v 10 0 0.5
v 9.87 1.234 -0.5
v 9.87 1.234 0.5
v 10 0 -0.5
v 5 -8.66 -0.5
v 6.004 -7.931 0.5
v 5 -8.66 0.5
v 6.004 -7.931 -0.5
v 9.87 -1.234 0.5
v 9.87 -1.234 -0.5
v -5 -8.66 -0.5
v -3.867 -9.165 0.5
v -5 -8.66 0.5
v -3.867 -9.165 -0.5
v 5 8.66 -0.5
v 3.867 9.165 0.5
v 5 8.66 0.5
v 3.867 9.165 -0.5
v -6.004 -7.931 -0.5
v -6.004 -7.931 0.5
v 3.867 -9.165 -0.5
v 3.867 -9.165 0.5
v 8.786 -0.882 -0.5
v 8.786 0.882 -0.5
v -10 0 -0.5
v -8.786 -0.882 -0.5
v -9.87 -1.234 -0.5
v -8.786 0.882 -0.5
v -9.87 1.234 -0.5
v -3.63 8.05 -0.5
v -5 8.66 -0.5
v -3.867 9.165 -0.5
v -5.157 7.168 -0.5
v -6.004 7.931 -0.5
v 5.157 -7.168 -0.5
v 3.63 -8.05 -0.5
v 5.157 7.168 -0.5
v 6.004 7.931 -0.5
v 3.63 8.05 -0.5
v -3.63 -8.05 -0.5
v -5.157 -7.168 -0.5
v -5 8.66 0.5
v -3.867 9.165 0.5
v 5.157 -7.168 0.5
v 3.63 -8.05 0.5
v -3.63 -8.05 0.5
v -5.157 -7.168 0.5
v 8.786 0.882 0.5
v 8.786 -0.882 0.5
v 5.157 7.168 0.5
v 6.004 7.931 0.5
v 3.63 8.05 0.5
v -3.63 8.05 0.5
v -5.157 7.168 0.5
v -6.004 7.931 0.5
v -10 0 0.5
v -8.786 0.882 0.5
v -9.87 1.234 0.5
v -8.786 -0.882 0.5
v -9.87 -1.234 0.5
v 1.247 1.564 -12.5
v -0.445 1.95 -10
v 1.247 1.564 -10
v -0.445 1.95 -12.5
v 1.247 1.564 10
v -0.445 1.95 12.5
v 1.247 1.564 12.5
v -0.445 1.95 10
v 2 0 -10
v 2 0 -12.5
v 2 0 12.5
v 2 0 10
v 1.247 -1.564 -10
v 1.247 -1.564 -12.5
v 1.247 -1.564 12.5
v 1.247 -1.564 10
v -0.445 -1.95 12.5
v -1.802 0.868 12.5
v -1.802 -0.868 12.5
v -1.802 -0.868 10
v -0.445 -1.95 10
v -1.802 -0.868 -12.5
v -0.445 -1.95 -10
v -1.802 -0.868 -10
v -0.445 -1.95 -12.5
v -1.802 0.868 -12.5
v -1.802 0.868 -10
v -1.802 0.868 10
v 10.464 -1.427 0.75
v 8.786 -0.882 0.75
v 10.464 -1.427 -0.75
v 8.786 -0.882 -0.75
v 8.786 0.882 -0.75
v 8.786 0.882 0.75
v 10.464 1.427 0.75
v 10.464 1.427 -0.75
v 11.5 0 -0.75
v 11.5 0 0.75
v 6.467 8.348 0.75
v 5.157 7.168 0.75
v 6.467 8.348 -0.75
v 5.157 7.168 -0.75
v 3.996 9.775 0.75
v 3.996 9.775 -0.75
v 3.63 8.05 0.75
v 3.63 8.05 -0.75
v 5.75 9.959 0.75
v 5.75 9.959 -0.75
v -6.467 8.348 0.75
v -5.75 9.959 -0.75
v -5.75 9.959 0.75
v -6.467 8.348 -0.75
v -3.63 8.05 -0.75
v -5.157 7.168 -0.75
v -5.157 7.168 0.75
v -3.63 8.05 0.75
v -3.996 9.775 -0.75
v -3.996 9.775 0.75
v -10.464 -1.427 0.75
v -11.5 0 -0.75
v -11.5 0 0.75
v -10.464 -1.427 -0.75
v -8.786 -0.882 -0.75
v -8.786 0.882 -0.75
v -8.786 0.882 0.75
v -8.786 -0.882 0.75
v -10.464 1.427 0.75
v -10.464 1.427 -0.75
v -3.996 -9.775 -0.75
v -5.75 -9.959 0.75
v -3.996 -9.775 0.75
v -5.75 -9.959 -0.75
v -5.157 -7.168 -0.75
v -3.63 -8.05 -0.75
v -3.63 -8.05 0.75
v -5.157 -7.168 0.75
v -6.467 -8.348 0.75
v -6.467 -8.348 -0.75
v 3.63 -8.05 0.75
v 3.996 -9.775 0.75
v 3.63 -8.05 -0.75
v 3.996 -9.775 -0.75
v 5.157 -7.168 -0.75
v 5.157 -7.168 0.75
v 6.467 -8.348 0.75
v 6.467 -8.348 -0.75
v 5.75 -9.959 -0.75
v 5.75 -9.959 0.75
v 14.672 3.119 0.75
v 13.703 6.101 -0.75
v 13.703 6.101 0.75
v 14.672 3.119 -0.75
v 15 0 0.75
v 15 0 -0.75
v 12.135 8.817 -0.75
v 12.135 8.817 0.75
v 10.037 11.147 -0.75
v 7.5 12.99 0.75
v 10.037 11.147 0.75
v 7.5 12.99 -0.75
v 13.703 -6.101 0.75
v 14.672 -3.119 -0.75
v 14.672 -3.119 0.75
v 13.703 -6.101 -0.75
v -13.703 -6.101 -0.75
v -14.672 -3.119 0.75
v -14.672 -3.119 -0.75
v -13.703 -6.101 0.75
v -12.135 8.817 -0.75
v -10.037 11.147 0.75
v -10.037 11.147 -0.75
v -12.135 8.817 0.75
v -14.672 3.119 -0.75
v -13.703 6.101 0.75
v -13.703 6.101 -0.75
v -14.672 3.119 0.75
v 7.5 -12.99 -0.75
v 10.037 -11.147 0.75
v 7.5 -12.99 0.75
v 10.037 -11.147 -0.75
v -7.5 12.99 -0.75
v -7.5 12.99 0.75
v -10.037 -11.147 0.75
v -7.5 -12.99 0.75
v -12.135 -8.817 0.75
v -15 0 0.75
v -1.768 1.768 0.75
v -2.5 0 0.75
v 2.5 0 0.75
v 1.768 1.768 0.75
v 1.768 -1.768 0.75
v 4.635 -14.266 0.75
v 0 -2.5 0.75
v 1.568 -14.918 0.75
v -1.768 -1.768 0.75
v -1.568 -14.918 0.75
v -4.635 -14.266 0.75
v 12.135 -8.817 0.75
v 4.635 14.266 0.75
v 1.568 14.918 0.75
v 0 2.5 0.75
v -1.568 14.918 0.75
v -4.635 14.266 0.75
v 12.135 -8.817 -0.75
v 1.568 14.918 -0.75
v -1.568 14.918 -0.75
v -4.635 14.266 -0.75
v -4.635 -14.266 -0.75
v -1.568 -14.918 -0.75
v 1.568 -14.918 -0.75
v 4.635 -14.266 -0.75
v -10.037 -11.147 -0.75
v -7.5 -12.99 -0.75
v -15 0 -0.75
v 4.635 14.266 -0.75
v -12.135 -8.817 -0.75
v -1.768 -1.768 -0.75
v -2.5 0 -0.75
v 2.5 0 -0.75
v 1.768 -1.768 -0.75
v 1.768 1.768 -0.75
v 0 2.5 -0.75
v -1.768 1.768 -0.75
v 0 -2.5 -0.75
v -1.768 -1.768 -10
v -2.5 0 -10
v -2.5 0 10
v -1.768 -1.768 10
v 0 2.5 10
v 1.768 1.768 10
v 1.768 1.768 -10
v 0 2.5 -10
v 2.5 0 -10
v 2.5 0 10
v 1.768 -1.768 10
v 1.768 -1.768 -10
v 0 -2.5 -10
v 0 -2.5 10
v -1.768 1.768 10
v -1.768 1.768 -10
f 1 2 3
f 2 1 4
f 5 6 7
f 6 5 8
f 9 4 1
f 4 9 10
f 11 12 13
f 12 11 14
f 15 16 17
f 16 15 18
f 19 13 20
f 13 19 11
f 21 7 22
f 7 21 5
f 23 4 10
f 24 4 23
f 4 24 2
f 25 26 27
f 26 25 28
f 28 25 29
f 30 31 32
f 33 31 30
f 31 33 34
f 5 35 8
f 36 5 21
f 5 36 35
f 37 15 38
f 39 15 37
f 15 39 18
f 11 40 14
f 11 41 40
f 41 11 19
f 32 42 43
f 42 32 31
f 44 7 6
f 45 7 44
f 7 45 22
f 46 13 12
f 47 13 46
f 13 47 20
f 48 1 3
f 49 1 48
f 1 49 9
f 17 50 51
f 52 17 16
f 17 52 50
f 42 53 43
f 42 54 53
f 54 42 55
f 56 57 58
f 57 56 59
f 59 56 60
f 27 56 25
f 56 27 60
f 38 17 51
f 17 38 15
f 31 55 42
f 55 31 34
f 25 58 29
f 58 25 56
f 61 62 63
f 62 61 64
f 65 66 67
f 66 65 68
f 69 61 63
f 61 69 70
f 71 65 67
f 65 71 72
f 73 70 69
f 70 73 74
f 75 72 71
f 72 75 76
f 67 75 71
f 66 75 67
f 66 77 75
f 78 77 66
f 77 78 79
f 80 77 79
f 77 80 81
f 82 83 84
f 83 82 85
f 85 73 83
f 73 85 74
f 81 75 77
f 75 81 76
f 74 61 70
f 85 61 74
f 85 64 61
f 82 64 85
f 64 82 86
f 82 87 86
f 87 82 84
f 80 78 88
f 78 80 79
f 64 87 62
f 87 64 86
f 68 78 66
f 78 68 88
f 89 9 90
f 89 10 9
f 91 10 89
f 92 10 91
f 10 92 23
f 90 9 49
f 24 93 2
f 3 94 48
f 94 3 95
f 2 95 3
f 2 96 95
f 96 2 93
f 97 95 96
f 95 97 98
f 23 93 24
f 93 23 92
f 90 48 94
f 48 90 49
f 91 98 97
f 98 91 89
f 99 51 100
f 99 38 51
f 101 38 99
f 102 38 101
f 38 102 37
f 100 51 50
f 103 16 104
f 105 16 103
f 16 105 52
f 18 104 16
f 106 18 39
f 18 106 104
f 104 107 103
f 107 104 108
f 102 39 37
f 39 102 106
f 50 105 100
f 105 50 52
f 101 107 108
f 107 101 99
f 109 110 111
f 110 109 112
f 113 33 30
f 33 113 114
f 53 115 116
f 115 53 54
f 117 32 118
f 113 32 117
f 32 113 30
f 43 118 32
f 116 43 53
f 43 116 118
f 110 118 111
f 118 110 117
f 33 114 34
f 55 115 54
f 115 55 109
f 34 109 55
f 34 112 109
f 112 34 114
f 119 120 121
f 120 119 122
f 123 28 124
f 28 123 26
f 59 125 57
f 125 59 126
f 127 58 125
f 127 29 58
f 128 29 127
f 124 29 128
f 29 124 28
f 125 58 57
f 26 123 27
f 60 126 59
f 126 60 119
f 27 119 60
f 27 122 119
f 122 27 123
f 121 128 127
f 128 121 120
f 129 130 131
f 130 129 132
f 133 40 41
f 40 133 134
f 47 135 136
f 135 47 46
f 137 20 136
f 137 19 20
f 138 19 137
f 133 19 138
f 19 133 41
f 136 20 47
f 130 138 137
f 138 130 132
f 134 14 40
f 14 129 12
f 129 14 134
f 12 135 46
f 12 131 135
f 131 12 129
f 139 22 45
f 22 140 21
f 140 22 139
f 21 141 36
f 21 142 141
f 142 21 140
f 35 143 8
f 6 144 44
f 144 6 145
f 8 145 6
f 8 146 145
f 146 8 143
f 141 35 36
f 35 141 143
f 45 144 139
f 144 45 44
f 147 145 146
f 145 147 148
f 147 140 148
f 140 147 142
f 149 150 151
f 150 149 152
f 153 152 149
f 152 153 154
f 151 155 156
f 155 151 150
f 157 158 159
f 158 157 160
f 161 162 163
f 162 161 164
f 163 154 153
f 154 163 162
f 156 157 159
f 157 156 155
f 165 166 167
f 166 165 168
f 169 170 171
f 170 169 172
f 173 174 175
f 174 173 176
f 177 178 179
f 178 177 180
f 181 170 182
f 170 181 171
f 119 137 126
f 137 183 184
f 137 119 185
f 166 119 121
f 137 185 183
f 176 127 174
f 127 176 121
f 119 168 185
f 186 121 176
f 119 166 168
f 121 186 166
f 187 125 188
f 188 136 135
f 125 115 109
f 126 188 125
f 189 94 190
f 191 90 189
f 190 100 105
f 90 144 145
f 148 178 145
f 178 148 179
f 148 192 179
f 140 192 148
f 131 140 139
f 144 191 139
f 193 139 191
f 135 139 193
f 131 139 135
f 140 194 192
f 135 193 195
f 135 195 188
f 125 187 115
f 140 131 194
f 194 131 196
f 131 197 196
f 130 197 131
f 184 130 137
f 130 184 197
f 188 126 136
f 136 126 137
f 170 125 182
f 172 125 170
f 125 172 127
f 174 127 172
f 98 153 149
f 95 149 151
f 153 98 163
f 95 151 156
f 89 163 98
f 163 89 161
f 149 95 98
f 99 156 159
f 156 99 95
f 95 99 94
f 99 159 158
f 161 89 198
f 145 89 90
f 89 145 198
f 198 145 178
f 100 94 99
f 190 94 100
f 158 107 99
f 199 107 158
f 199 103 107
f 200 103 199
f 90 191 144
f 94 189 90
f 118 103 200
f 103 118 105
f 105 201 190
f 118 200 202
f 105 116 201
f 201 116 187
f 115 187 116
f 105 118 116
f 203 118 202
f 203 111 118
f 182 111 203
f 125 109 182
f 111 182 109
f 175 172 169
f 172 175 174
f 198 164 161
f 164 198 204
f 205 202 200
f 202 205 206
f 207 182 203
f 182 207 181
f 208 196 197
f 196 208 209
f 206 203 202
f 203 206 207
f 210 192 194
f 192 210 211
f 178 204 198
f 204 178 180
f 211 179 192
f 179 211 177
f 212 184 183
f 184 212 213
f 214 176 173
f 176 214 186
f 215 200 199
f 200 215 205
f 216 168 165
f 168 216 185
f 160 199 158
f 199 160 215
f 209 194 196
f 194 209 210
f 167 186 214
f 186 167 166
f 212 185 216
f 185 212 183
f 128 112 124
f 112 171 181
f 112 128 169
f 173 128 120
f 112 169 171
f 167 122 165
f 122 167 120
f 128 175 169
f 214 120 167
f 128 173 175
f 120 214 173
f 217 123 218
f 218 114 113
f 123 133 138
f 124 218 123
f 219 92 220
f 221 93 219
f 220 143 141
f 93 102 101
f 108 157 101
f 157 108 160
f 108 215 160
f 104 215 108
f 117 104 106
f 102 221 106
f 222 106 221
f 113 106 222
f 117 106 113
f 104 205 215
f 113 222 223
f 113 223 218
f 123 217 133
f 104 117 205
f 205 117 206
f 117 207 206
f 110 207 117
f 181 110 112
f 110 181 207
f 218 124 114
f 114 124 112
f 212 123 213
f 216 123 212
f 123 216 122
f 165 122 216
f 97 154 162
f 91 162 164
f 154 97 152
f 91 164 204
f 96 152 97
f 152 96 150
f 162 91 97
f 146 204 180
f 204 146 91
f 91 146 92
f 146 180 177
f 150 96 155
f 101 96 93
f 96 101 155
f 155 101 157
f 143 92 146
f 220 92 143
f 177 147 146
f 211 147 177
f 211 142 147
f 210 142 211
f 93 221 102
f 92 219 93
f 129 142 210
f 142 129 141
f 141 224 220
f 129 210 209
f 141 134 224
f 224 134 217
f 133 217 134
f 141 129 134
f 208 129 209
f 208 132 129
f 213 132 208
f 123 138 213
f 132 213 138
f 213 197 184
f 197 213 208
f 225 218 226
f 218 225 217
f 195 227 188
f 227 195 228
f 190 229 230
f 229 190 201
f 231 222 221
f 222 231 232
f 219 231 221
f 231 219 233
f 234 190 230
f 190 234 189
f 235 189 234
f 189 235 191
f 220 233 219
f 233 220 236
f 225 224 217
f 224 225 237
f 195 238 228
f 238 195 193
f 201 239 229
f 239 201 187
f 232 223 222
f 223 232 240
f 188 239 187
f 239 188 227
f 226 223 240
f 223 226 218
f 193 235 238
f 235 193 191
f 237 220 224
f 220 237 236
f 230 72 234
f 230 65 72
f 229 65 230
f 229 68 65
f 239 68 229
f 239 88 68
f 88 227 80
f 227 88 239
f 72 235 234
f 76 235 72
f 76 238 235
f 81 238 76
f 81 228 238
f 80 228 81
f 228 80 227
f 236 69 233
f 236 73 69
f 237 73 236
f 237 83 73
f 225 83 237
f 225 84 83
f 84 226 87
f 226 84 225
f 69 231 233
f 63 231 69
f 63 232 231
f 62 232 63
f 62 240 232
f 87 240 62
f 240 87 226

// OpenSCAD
// Spacer Ring Parameters
module spacer_ring(outer_diameter=20, inner_diameter=15, thickness=1) { // Reduced thickness to match the original model
    difference() {
        // Outer cylinder
        cylinder(h=thickness, r=outer_diameter/2, center=true);
        // Inner cylinder (hole)
        cylinder(h=thickness + 1, r=inner_diameter/2, center=true);
    }
}

// Render the spacer ring
spacer_ring();

// Bolt Parameters
module bolt(length=12, diameter=3) { // Increased length to match the original model
    cylinder(h=length, r=diameter/2, center=true);
}

// Render the bolt
bolt();

// Central Shaft Parameters
module central_shaft(length=20, diameter=5) { // Reduced diameter to match the original model
    cylinder(h=length, r=diameter/2, center=true);
}

// Render the central shaft
central_shaft();

// Input Shaft Parameters
module input_shaft(length=15, base_diameter=4, taper_diameter=2) { // Increased taper to match the original model
    difference() {
        cylinder(h=length, r=base_diameter/2, center=true);
        translate([0, 0, length - 5]) // Taper starts 5 units from the end
            cylinder(h=5, r=taper_diameter/2, center=true);
    }
}

// Render the input shaft
input_shaft();

// Output Shaft Parameters
module output_shaft(length=25, base_diameter=4, taper_diameter=2) { // Increased length and taper to match the original model
    difference() {
        cylinder(h=length, r=base_diameter/2, center=true);
        translate([0, 0, length - 7]) // Taper starts 7 units from the end
            cylinder(h=7, r=taper_diameter/2, center=true);
    }
}

// Render the output shaft
output_shaft();

// Flange Plate Parameters
module flange_plate(diameter=30, thickness=1.5, bolt_holes=6) { // Reduced thickness and increased bolt holes to match the original model
    difference() {
        // Outer cylinder
        cylinder(h=thickness, r=diameter/2, center=true);
        // Bolt holes
        for (i = [0:bolt_holes-1]) {
            rotate([0, 0, i * 360/bolt_holes])
                translate([diameter/2 - 5, 0, 0])
                    cylinder(h=thickness + 1, r=1.5, center=true);
        }
    }
}

// Render the flange plate
flange_plate();

// Nut Parameters
module nut(size=3, thickness=2) { // Reduced hexagonal profile size to match the original model
    difference() {
        // Hexagonal profile
        rotate([0, 0, 30])
            linear_extrude(height=thickness)
                polygon(points=[[0, size], [size * cos(60), size * sin(60)], [-size * cos(60), size * sin(60)], [-size, 0], [-size * cos(60), -size * sin(60)], [size * cos(60), -size * sin(60)]]);
        // Hole
        cylinder(h=thickness + 1, r=size/2.5, center=true);
    }
}

// Render the nut
nut();
